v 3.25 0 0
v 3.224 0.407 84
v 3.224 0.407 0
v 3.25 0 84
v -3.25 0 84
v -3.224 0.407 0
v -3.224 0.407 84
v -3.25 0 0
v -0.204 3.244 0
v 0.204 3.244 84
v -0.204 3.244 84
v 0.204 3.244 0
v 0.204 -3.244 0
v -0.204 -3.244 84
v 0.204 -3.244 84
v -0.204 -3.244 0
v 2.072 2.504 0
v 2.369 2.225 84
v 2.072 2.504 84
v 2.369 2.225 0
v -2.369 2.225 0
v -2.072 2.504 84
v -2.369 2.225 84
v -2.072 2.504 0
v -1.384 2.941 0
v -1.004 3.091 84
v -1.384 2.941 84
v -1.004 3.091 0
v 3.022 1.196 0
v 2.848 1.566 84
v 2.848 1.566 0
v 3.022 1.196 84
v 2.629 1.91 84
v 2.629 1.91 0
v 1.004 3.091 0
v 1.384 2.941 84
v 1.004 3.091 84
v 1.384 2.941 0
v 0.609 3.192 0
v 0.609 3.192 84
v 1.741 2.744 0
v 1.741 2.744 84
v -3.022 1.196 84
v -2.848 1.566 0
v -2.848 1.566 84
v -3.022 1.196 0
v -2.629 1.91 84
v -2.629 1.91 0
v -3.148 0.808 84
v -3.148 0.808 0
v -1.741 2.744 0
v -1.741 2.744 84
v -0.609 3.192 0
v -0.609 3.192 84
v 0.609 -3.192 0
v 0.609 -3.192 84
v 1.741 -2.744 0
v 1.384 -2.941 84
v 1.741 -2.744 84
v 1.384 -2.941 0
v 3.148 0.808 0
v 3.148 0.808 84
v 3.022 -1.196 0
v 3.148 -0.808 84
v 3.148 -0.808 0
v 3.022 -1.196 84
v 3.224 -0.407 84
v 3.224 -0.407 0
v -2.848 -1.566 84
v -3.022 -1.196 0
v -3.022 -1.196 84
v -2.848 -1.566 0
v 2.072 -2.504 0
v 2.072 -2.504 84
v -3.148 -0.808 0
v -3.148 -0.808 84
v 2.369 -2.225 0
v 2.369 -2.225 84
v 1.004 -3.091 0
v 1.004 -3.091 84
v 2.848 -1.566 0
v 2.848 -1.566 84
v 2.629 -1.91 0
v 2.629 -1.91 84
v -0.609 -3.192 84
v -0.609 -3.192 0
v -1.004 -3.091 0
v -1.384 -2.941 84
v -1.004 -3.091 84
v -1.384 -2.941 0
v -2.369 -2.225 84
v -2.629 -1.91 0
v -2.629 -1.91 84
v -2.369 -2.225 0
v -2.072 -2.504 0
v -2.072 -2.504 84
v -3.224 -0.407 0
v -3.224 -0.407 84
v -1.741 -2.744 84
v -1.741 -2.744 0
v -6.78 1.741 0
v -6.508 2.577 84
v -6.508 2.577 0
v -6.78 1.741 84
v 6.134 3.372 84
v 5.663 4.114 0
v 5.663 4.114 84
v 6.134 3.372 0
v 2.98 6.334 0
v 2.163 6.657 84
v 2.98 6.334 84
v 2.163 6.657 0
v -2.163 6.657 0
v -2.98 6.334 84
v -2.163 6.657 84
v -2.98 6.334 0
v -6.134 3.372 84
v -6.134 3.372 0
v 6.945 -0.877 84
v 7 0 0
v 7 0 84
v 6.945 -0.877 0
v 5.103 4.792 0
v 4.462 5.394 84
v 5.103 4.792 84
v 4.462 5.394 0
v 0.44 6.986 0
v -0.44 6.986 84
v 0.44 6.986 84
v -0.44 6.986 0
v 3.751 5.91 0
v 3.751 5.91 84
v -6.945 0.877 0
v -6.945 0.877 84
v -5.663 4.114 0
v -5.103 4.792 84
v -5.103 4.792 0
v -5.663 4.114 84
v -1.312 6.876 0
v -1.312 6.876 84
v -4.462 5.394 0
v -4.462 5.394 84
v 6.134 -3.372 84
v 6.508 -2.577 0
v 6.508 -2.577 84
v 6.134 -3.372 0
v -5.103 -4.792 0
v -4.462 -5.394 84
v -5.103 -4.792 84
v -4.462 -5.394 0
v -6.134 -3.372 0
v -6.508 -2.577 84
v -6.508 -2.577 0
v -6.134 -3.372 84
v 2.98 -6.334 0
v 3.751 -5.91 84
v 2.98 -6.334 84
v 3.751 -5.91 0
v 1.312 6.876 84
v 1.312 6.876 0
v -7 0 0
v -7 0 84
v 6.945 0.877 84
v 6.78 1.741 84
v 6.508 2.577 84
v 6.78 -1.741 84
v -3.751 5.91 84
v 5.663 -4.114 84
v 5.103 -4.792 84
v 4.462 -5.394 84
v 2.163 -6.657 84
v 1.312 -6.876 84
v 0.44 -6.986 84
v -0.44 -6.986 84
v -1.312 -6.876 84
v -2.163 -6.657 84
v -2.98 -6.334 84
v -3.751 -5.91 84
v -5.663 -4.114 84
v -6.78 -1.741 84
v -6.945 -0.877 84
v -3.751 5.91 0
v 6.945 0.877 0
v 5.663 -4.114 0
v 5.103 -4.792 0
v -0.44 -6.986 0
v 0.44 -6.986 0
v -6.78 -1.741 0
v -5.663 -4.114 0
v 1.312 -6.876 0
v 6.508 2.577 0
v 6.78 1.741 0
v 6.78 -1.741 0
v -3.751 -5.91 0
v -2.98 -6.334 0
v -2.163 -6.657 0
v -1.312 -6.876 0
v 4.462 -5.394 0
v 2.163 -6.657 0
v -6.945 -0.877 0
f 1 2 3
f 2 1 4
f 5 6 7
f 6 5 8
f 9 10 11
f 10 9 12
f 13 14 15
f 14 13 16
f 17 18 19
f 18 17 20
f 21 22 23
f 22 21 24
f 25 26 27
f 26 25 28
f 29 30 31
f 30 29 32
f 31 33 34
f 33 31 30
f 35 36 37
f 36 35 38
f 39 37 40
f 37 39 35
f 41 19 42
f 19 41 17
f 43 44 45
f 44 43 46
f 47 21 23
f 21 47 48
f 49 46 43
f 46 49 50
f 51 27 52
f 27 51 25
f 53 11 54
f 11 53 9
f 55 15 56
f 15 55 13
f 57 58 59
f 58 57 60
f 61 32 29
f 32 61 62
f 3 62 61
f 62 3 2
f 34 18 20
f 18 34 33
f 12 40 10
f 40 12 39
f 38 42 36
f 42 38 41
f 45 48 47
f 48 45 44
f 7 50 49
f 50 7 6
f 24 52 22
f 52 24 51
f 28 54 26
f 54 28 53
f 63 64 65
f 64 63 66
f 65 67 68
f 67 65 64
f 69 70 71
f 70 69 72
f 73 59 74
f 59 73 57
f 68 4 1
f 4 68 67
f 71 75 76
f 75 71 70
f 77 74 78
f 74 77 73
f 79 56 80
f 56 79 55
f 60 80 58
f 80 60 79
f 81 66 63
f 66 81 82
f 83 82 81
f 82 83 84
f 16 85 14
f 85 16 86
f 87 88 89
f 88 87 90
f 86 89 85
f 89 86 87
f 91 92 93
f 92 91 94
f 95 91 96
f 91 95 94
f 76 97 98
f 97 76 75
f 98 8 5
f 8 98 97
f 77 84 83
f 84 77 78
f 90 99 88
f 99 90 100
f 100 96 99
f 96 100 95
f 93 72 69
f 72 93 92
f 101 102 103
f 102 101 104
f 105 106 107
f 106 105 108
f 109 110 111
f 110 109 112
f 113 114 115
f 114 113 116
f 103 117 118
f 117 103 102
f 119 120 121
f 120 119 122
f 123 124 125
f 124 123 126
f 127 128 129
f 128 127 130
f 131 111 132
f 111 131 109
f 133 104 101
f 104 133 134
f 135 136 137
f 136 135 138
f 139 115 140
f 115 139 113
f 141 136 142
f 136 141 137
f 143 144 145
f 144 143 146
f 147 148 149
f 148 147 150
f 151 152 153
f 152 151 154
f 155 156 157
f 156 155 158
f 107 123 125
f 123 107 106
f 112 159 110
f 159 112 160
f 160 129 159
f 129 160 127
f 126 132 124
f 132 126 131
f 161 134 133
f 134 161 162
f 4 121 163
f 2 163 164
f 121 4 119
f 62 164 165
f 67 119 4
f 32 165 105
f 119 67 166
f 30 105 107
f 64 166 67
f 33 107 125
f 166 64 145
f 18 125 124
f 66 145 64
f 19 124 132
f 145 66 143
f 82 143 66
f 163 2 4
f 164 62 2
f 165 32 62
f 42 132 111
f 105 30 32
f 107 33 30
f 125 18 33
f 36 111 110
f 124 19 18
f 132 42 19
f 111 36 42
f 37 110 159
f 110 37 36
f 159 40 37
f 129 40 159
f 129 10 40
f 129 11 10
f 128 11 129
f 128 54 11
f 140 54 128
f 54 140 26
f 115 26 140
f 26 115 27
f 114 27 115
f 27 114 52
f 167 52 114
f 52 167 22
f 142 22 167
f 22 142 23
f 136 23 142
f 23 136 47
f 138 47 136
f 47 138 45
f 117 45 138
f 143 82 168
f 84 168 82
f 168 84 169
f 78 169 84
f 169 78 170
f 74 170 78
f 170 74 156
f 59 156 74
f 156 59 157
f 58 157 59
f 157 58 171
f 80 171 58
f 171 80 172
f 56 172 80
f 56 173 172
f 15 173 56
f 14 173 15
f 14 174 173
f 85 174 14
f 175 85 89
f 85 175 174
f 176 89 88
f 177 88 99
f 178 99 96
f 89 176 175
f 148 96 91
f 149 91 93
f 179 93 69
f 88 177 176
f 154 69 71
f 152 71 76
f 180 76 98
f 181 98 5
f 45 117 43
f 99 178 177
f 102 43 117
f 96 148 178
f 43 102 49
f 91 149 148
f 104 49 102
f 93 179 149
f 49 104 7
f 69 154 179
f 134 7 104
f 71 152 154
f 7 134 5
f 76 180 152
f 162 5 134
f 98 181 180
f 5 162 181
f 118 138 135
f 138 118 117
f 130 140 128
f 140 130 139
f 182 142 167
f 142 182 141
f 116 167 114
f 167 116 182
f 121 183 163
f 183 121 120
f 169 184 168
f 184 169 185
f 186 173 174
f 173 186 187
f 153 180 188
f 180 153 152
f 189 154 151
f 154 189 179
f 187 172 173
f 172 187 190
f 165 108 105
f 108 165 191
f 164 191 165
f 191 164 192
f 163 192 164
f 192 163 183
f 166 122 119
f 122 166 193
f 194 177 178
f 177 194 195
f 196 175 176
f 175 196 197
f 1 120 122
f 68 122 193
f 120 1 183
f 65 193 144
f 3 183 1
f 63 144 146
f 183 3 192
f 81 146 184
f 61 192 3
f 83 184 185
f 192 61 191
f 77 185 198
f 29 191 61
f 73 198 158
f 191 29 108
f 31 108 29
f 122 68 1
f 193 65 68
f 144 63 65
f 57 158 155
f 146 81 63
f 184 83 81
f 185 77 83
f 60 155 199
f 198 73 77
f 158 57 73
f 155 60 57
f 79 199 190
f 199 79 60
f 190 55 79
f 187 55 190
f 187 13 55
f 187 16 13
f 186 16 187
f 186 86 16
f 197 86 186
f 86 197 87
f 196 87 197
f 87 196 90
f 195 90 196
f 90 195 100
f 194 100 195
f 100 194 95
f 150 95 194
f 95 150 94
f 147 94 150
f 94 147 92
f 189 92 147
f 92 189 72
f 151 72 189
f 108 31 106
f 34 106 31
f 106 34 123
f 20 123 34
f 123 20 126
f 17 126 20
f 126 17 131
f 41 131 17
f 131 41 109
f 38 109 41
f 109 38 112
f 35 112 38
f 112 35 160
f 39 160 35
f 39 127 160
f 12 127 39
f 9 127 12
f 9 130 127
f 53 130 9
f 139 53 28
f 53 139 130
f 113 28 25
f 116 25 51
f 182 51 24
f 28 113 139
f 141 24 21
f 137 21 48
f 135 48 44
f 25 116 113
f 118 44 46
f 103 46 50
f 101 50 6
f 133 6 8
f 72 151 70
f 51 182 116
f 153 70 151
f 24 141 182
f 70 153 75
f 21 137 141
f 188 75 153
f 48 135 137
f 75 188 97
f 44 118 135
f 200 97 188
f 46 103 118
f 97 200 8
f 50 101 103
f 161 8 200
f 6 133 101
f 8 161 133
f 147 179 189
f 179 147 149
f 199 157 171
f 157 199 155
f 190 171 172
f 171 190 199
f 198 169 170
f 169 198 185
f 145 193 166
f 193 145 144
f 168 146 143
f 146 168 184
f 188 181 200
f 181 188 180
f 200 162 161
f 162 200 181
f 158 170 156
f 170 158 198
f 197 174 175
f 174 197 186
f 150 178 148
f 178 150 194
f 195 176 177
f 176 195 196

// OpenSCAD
$fn = 50;


difference() {
	union() {
		cylinder(h = 84, r = 7.0000000000);
	}
	union() {
		cylinder(h = 84, r = 3.2500000000);
		cylinder(h = 84, r = 1.8000000000);
		cylinder(h = 84, r = 1.8000000000);
		cylinder(h = 84, r = 1.8000000000);
	}
}
